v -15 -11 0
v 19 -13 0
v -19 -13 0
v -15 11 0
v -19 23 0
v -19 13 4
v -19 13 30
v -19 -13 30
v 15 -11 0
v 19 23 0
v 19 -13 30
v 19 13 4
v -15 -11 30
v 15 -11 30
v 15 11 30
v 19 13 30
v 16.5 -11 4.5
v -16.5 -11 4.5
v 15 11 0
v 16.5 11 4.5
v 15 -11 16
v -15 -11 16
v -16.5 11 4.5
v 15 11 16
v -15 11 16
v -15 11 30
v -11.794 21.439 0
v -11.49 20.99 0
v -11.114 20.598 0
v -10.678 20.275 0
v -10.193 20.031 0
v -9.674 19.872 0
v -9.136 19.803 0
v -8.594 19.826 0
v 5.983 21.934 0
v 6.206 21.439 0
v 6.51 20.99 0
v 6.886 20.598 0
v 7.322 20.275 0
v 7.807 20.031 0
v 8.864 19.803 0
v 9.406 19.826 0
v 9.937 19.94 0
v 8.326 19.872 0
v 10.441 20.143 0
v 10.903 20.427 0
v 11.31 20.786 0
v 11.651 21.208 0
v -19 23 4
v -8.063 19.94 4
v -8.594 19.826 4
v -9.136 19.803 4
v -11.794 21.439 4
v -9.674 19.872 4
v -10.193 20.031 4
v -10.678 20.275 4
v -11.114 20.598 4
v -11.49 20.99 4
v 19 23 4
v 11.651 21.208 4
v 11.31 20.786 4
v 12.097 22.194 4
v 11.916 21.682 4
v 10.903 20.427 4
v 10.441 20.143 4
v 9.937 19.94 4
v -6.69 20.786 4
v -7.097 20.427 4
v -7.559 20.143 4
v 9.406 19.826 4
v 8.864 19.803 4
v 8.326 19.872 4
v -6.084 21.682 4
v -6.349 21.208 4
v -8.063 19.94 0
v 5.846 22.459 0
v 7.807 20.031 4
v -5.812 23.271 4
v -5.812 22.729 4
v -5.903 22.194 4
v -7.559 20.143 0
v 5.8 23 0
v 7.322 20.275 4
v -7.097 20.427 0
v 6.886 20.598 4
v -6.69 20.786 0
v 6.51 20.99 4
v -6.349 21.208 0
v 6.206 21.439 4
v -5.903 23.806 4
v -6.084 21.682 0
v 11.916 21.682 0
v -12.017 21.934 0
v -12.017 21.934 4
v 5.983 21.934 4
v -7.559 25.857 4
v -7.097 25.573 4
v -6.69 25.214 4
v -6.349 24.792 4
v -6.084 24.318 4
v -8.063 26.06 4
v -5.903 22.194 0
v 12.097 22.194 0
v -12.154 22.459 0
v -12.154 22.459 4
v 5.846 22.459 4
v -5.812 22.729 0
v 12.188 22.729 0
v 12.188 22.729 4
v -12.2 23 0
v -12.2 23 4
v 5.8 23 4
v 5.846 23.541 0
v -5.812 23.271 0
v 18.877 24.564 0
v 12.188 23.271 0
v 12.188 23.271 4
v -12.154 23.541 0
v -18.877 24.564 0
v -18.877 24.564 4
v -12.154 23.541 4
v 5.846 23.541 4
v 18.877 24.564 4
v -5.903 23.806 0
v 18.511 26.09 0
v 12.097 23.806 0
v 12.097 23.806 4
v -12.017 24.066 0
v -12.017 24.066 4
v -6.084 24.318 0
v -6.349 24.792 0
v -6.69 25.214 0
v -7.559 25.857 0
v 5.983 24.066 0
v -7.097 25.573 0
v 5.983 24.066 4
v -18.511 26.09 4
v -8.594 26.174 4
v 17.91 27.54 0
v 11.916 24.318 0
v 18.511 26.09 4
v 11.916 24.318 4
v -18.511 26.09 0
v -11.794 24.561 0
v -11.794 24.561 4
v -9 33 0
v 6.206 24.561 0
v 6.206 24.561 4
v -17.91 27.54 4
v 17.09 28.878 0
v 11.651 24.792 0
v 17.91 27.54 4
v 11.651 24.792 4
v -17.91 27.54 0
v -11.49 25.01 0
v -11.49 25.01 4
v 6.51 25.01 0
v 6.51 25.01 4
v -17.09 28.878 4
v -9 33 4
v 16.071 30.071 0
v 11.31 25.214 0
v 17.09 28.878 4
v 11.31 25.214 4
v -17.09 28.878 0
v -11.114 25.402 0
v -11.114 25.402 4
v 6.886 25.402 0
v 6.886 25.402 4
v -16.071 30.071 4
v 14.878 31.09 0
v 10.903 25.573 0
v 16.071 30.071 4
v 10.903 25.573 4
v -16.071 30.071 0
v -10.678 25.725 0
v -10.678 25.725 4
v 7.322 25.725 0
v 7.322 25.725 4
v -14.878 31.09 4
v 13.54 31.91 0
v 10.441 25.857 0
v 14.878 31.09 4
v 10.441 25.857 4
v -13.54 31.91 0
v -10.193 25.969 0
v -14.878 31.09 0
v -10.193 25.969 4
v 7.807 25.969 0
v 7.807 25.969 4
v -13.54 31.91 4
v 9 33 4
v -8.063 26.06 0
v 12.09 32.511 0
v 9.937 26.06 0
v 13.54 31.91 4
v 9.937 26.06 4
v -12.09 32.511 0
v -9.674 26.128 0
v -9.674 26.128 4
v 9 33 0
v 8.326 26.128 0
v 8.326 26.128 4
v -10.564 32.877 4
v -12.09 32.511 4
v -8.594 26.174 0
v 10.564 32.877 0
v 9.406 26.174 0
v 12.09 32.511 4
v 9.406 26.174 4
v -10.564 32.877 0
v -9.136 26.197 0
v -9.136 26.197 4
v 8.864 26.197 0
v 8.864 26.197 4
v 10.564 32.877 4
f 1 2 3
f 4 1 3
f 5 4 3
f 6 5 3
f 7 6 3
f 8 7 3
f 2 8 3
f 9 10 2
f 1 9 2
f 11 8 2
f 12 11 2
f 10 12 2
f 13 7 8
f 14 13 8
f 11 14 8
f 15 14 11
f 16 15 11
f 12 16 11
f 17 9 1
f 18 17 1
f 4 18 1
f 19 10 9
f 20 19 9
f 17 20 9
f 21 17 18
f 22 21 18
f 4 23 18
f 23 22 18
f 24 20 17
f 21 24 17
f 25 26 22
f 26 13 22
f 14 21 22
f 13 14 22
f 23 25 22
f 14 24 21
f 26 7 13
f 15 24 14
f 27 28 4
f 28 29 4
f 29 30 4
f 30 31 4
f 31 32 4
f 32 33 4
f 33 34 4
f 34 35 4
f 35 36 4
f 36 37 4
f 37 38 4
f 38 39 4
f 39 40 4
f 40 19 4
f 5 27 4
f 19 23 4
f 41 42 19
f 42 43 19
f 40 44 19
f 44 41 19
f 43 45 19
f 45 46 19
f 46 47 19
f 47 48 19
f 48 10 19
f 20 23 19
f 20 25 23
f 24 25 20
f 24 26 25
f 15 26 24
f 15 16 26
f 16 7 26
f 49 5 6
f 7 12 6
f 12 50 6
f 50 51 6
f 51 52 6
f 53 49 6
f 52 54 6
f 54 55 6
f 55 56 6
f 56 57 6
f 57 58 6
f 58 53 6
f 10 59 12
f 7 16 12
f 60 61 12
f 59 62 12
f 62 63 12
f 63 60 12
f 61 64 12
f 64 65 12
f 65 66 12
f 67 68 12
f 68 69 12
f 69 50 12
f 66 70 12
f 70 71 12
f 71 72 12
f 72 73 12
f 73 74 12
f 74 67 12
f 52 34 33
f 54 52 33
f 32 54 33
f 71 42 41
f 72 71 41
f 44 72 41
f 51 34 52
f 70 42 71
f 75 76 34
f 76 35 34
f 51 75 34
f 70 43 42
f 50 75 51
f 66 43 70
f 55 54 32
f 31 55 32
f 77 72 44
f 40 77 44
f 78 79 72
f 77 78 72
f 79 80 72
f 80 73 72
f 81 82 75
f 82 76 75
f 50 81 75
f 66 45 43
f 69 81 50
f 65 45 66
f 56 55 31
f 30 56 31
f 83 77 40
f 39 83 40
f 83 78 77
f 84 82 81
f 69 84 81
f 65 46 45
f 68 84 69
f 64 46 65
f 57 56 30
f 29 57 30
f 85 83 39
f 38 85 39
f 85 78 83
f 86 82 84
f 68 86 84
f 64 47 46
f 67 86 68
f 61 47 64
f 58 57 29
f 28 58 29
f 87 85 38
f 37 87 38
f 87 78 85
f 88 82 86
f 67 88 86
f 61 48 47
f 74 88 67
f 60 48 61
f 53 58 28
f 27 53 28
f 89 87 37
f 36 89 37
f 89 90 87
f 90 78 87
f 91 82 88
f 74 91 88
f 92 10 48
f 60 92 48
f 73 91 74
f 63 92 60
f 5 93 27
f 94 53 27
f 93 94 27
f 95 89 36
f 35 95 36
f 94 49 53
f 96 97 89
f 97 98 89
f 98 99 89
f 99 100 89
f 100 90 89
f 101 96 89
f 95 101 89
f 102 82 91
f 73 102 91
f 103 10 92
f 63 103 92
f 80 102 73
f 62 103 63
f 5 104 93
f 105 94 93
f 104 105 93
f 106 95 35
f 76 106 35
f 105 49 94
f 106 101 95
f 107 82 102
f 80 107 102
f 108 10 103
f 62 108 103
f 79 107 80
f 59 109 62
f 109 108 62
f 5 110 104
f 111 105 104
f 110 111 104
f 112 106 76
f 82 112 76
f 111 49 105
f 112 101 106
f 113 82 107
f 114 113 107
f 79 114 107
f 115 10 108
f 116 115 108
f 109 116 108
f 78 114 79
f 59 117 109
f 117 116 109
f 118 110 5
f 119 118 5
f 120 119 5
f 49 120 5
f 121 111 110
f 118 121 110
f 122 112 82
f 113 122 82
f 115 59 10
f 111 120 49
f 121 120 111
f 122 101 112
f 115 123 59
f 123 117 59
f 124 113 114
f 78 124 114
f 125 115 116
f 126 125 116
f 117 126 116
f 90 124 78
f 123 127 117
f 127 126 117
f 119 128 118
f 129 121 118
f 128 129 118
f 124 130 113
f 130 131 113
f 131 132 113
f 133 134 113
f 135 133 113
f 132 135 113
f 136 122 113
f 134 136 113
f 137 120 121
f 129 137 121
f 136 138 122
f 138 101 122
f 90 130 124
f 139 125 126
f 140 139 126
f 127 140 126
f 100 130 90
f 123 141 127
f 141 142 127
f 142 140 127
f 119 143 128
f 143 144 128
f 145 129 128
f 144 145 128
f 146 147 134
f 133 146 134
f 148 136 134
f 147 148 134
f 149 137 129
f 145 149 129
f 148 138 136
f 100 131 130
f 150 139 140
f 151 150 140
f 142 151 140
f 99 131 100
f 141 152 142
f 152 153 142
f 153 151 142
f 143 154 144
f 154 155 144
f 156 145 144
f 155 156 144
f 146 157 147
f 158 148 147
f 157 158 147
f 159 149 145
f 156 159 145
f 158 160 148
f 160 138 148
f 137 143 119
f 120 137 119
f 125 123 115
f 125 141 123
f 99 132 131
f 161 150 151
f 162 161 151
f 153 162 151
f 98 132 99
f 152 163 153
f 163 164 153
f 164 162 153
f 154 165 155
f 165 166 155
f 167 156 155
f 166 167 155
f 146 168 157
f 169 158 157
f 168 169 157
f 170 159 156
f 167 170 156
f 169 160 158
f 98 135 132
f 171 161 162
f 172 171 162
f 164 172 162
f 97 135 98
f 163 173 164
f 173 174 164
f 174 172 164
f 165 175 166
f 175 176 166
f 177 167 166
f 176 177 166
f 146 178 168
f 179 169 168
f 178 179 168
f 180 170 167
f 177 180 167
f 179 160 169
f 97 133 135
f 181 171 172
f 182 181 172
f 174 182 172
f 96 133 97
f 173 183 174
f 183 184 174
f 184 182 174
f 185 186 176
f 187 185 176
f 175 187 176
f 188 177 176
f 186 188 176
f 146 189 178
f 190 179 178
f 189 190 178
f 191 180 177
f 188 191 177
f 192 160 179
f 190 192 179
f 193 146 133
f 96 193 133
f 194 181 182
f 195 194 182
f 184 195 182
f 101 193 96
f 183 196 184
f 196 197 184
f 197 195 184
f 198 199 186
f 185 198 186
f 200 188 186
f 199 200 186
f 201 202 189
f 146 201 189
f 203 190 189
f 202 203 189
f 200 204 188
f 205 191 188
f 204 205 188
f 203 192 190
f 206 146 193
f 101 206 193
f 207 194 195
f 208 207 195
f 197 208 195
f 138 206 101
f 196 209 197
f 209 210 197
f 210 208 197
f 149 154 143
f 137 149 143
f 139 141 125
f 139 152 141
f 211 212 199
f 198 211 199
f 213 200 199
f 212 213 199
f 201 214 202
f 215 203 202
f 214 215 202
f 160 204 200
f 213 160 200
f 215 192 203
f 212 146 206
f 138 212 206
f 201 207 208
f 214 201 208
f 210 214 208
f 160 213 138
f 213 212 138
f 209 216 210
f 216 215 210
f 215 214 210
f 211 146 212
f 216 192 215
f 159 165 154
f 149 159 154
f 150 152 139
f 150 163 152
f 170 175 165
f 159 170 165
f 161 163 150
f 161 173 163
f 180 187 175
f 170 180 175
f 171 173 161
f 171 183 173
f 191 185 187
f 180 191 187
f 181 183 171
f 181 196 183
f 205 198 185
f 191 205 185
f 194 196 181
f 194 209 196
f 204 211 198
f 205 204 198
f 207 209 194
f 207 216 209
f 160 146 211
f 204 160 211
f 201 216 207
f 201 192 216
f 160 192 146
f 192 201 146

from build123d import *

# Parameters (mm, degrees)
SKETCH1_W           = 38
SKETCH1_H           = 26
SKETCH1_W_2         = 30
SKETCH1_H_2         = 22
BOSS_EXTRUDE1_DEPTH = 30
CUT_EXTRUDE1_DEPTH  = 22
SKETCH3_R           = 3.2
BOSS_EXTRUDE2_DEPTH = 4


with BuildPart() as part:
    # Sketch1 → Boss-Extrude1 (new body)
    with BuildSketch(Plane.XY):
        Rectangle(SKETCH1_W, SKETCH1_H)
        Rectangle(SKETCH1_W_2, SKETCH1_H_2, mode=Mode.SUBTRACT)
    extrude(amount=BOSS_EXTRUDE1_DEPTH)

    # Sketch2 → Cut-Extrude1 (cut)
    with BuildSketch(Plane.XZ.offset(-11)):
        Polygon((15, 0), (16.5, 4.5), (15, 16), align=None)
        Polygon((-15, 16), (-15, 0), (-16.5, 4.5), align=None)
    extrude(amount=CUT_EXTRUDE1_DEPTH, mode=Mode.SUBTRACT)

    # Sketch3 → Boss-Extrude2 (add)
    with BuildSketch(Plane(origin=(0, 0, 0), x_dir=(-1, 0, 0), z_dir=(0, 0, -1))):
        with BuildLine():
            Line((19, 13), (-19, 13))
            Line((-19, 13), (-19, 23))
            ThreePointArc((-19, 23), (-16.071067812, 30.071067812), (-9, 33))
            Line((-9, 33), (9, 33))
            ThreePointArc((9, 33), (16.071067812, 30.071067812), (19, 23))
            Line((19, 23), (19, 13))
        make_face()
        with Locations((-9, 23)):
            Circle(SKETCH3_R, mode=Mode.SUBTRACT)
        with Locations((9, 23)):
            Circle(SKETCH3_R, mode=Mode.SUBTRACT)
    extrude(amount=-BOSS_EXTRUDE2_DEPTH)


solid = part.part
